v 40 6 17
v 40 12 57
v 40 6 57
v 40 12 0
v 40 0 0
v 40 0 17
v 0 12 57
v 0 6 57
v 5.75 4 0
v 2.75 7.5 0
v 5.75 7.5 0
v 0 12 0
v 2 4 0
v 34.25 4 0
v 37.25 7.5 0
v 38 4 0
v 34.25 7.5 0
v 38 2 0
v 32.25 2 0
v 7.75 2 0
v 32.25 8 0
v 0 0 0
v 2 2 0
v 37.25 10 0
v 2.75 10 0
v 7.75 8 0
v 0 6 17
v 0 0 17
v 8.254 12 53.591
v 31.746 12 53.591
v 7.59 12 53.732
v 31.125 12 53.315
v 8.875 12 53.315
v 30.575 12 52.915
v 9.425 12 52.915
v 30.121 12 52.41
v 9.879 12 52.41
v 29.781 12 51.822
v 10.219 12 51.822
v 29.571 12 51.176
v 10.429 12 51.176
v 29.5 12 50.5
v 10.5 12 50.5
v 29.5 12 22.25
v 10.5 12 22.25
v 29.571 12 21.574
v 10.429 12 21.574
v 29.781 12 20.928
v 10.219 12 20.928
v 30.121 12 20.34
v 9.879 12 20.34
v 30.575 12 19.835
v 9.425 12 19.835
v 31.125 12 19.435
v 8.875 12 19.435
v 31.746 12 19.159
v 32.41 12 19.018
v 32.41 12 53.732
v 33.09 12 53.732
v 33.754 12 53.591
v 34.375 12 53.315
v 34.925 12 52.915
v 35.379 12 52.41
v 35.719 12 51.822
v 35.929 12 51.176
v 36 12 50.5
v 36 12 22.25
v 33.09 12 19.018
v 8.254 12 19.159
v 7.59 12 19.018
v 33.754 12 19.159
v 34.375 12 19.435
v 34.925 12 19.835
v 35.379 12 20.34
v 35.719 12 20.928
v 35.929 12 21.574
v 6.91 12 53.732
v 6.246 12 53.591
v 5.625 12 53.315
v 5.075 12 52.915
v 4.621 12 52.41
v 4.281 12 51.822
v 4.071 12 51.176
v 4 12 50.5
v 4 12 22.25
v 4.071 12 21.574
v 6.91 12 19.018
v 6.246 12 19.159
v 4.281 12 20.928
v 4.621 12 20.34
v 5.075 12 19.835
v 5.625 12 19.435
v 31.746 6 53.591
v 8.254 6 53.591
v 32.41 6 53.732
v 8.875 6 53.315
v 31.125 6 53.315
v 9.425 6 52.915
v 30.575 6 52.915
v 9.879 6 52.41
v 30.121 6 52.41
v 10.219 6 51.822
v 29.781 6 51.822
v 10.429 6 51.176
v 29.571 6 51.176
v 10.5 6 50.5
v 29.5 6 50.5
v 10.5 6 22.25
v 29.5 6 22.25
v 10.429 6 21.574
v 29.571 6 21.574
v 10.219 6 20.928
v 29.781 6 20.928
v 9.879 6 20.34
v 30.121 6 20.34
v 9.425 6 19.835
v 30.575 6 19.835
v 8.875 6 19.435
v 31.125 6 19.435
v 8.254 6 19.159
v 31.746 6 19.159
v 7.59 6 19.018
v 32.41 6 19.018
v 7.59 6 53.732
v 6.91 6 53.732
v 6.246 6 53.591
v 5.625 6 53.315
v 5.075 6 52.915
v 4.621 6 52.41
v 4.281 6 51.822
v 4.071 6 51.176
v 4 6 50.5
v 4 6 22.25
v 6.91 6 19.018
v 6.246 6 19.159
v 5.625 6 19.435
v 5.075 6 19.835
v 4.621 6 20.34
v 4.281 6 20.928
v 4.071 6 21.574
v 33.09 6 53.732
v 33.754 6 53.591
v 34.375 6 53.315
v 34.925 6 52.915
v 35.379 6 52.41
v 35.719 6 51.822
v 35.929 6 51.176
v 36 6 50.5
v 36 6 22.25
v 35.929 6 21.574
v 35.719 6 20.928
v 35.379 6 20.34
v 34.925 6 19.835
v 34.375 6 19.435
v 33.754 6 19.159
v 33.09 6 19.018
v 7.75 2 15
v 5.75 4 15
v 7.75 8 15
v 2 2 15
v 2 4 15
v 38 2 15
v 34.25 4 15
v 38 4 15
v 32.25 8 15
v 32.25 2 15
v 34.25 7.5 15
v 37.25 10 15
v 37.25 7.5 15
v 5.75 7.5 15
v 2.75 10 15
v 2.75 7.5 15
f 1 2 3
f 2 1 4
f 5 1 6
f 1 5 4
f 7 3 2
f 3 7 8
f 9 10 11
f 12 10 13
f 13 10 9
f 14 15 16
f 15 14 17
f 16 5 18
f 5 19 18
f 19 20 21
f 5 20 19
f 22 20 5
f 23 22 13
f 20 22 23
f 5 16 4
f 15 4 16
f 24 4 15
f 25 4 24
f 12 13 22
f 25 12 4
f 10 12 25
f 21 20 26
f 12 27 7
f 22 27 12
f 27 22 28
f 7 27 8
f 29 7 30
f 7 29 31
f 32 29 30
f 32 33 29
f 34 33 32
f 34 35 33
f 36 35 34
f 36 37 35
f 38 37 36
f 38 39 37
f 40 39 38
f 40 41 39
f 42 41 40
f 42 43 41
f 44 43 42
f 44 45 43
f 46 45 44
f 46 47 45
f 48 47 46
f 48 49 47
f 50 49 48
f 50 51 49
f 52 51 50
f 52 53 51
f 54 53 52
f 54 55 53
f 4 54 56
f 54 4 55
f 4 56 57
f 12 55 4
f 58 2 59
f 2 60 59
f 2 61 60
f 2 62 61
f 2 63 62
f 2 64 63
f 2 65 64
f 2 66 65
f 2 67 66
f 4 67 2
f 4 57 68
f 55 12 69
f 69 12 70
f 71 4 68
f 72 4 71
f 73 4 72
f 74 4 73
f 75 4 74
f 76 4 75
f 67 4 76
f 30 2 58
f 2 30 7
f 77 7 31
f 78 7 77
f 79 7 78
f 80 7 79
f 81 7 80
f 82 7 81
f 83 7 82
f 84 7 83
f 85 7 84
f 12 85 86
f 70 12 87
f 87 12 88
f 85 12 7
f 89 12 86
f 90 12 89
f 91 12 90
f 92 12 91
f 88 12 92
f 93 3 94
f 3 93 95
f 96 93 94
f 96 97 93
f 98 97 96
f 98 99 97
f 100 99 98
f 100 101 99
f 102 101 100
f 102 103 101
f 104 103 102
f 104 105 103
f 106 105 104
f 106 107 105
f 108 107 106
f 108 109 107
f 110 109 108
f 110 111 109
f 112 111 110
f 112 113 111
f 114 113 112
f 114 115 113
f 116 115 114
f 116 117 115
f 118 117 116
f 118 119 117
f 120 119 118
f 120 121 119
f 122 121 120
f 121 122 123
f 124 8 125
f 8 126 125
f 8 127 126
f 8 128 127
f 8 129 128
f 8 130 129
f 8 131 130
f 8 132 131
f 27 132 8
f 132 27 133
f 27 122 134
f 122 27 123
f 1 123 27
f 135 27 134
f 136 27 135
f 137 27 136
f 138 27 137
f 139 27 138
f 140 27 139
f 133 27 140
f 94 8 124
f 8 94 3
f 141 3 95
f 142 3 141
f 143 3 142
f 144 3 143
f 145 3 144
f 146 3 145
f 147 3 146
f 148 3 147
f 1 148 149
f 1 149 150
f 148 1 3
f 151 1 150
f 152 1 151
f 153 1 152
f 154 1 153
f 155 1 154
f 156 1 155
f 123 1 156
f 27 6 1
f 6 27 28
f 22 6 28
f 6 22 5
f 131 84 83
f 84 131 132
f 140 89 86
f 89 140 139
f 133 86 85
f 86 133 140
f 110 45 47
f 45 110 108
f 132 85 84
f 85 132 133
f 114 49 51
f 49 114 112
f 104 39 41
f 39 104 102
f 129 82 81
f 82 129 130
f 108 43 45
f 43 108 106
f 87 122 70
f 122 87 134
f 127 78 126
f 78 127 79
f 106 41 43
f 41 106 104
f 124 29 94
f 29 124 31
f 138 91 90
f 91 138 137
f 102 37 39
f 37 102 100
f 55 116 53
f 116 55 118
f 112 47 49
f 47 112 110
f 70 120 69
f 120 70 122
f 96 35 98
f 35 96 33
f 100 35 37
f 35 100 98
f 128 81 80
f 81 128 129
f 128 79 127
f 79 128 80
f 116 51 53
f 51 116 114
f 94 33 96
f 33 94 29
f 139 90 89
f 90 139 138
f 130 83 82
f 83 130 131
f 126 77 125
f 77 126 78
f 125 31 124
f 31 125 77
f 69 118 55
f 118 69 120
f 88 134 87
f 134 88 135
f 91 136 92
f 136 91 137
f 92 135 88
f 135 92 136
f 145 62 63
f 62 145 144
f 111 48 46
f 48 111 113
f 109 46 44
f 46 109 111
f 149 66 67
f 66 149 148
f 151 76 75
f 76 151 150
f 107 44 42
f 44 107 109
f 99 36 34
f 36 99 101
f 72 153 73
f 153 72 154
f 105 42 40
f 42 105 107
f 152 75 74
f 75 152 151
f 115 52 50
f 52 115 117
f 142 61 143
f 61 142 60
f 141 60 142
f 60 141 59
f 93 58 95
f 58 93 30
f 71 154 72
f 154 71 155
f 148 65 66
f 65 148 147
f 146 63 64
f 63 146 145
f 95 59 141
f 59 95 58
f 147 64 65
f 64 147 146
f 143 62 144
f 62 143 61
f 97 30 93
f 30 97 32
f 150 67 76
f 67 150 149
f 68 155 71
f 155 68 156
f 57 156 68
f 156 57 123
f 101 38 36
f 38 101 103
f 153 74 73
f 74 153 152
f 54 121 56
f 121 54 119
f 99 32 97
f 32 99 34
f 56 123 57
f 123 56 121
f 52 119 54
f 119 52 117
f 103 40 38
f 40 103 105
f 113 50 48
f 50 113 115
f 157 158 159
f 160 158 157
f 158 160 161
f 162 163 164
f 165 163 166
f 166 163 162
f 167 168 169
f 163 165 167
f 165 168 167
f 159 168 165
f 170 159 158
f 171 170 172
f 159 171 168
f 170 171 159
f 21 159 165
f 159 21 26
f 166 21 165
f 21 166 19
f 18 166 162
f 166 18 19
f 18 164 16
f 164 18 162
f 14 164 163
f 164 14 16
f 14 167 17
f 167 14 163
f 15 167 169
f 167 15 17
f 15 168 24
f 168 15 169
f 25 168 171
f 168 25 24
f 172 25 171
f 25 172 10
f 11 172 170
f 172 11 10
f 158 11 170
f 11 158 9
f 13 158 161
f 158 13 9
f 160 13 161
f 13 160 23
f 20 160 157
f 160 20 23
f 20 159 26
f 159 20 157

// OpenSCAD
// file: din_utilities.scad
DIN_LENGTH = 36;
DIN_INNER_LENGTH = 24.5;
DIN_WIDTH = 8;
DIN_NUBBIN_WIDTH = 2.5;
DIN_NUBBIN_LENGTH = 3;
DIN_RAIL_WIDTH = 2;

function din_length() = DIN_LENGTH;
function din_width() = DIN_WIDTH;

module din_modified_slot() {
    din_wing_length = (DIN_LENGTH - DIN_INNER_LENGTH) / 2;
    echo(din_wing_length);
    din_inner_width = DIN_WIDTH - DIN_RAIL_WIDTH;
    polygon([
        [0, 0],
        [0, DIN_RAIL_WIDTH],
        [din_wing_length - DIN_RAIL_WIDTH, DIN_RAIL_WIDTH],
        [din_wing_length - DIN_RAIL_WIDTH, DIN_WIDTH - DIN_NUBBIN_WIDTH],
        [din_wing_length - DIN_RAIL_WIDTH - DIN_NUBBIN_LENGTH, DIN_WIDTH - DIN_NUBBIN_WIDTH],
        [din_wing_length - DIN_RAIL_WIDTH - DIN_NUBBIN_LENGTH, DIN_WIDTH],
        [DIN_LENGTH - din_wing_length + DIN_RAIL_WIDTH + DIN_NUBBIN_LENGTH, DIN_WIDTH],
        [DIN_LENGTH - din_wing_length + DIN_RAIL_WIDTH + DIN_NUBBIN_LENGTH, DIN_WIDTH - DIN_NUBBIN_WIDTH],
        [DIN_LENGTH - din_wing_length + DIN_RAIL_WIDTH, DIN_WIDTH - DIN_NUBBIN_WIDTH],
        [DIN_LENGTH - din_wing_length + DIN_RAIL_WIDTH, DIN_RAIL_WIDTH],
        [DIN_LENGTH, DIN_RAIL_WIDTH],
        [DIN_LENGTH, 0],
        [DIN_LENGTH - din_wing_length, 0],
        [DIN_LENGTH - din_wing_length, din_inner_width],
        [din_wing_length, din_inner_width],
        [din_wing_length, 0]
    ]);
}

difference() {
    cube([40, 12 ,4]);
    
    translate([2, 2, 0])
    linear_extrude(4)
    din_modified_slot();
}
// main file
use <din_utilities.scad>

WALL_WIDTH = 2;

din_block_depth = din_width() + WALL_WIDTH * 2;
block_depth = 6;
block_length = din_length() + WALL_WIDTH * 2;

SLOT_DEPTH = 15;
HOLE_DIAMETER = 6.5;
HOLE_LENGTH = 25;
hole_width = din_length() - HOLE_DIAMETER;

hole_radius = HOLE_DIAMETER / 2;

block_height = SLOT_DEPTH + WALL_WIDTH * 2 + HOLE_LENGTH + HOLE_DIAMETER * 2;


module slot() {
    linear_extrude(block_depth)
    hull() {
        scale([1/10, 1/10, 1/10])
        circle(d = HOLE_DIAMETER * 10);
        
        translate([0, HOLE_LENGTH + hole_radius, 0])
        scale([1/10, 1/10, 1/10])
        circle(d = HOLE_DIAMETER * 10);
    }
}

module holes() {
    center_offset = WALL_WIDTH * 2 + hole_radius;
    min_z_offset = hole_radius + SLOT_DEPTH + WALL_WIDTH * 2;
    
    translate([center_offset, din_block_depth, min_z_offset])
    rotate([90, 0, 0])
    slot();
    
    translate([block_length - center_offset, din_block_depth, min_z_offset])
    rotate([90, 0, 0])
    slot();
}

module block() {
    union() {
        translate([0, din_block_depth - block_depth, 0])
        cube([block_length, block_depth, block_height]);
        
        cube([block_length, din_block_depth, SLOT_DEPTH + WALL_WIDTH]);
    }
}

difference() {
    block();
    holes();

    translate([WALL_WIDTH, WALL_WIDTH, 0])
    linear_extrude(SLOT_DEPTH)
        din_modified_slot();
}
